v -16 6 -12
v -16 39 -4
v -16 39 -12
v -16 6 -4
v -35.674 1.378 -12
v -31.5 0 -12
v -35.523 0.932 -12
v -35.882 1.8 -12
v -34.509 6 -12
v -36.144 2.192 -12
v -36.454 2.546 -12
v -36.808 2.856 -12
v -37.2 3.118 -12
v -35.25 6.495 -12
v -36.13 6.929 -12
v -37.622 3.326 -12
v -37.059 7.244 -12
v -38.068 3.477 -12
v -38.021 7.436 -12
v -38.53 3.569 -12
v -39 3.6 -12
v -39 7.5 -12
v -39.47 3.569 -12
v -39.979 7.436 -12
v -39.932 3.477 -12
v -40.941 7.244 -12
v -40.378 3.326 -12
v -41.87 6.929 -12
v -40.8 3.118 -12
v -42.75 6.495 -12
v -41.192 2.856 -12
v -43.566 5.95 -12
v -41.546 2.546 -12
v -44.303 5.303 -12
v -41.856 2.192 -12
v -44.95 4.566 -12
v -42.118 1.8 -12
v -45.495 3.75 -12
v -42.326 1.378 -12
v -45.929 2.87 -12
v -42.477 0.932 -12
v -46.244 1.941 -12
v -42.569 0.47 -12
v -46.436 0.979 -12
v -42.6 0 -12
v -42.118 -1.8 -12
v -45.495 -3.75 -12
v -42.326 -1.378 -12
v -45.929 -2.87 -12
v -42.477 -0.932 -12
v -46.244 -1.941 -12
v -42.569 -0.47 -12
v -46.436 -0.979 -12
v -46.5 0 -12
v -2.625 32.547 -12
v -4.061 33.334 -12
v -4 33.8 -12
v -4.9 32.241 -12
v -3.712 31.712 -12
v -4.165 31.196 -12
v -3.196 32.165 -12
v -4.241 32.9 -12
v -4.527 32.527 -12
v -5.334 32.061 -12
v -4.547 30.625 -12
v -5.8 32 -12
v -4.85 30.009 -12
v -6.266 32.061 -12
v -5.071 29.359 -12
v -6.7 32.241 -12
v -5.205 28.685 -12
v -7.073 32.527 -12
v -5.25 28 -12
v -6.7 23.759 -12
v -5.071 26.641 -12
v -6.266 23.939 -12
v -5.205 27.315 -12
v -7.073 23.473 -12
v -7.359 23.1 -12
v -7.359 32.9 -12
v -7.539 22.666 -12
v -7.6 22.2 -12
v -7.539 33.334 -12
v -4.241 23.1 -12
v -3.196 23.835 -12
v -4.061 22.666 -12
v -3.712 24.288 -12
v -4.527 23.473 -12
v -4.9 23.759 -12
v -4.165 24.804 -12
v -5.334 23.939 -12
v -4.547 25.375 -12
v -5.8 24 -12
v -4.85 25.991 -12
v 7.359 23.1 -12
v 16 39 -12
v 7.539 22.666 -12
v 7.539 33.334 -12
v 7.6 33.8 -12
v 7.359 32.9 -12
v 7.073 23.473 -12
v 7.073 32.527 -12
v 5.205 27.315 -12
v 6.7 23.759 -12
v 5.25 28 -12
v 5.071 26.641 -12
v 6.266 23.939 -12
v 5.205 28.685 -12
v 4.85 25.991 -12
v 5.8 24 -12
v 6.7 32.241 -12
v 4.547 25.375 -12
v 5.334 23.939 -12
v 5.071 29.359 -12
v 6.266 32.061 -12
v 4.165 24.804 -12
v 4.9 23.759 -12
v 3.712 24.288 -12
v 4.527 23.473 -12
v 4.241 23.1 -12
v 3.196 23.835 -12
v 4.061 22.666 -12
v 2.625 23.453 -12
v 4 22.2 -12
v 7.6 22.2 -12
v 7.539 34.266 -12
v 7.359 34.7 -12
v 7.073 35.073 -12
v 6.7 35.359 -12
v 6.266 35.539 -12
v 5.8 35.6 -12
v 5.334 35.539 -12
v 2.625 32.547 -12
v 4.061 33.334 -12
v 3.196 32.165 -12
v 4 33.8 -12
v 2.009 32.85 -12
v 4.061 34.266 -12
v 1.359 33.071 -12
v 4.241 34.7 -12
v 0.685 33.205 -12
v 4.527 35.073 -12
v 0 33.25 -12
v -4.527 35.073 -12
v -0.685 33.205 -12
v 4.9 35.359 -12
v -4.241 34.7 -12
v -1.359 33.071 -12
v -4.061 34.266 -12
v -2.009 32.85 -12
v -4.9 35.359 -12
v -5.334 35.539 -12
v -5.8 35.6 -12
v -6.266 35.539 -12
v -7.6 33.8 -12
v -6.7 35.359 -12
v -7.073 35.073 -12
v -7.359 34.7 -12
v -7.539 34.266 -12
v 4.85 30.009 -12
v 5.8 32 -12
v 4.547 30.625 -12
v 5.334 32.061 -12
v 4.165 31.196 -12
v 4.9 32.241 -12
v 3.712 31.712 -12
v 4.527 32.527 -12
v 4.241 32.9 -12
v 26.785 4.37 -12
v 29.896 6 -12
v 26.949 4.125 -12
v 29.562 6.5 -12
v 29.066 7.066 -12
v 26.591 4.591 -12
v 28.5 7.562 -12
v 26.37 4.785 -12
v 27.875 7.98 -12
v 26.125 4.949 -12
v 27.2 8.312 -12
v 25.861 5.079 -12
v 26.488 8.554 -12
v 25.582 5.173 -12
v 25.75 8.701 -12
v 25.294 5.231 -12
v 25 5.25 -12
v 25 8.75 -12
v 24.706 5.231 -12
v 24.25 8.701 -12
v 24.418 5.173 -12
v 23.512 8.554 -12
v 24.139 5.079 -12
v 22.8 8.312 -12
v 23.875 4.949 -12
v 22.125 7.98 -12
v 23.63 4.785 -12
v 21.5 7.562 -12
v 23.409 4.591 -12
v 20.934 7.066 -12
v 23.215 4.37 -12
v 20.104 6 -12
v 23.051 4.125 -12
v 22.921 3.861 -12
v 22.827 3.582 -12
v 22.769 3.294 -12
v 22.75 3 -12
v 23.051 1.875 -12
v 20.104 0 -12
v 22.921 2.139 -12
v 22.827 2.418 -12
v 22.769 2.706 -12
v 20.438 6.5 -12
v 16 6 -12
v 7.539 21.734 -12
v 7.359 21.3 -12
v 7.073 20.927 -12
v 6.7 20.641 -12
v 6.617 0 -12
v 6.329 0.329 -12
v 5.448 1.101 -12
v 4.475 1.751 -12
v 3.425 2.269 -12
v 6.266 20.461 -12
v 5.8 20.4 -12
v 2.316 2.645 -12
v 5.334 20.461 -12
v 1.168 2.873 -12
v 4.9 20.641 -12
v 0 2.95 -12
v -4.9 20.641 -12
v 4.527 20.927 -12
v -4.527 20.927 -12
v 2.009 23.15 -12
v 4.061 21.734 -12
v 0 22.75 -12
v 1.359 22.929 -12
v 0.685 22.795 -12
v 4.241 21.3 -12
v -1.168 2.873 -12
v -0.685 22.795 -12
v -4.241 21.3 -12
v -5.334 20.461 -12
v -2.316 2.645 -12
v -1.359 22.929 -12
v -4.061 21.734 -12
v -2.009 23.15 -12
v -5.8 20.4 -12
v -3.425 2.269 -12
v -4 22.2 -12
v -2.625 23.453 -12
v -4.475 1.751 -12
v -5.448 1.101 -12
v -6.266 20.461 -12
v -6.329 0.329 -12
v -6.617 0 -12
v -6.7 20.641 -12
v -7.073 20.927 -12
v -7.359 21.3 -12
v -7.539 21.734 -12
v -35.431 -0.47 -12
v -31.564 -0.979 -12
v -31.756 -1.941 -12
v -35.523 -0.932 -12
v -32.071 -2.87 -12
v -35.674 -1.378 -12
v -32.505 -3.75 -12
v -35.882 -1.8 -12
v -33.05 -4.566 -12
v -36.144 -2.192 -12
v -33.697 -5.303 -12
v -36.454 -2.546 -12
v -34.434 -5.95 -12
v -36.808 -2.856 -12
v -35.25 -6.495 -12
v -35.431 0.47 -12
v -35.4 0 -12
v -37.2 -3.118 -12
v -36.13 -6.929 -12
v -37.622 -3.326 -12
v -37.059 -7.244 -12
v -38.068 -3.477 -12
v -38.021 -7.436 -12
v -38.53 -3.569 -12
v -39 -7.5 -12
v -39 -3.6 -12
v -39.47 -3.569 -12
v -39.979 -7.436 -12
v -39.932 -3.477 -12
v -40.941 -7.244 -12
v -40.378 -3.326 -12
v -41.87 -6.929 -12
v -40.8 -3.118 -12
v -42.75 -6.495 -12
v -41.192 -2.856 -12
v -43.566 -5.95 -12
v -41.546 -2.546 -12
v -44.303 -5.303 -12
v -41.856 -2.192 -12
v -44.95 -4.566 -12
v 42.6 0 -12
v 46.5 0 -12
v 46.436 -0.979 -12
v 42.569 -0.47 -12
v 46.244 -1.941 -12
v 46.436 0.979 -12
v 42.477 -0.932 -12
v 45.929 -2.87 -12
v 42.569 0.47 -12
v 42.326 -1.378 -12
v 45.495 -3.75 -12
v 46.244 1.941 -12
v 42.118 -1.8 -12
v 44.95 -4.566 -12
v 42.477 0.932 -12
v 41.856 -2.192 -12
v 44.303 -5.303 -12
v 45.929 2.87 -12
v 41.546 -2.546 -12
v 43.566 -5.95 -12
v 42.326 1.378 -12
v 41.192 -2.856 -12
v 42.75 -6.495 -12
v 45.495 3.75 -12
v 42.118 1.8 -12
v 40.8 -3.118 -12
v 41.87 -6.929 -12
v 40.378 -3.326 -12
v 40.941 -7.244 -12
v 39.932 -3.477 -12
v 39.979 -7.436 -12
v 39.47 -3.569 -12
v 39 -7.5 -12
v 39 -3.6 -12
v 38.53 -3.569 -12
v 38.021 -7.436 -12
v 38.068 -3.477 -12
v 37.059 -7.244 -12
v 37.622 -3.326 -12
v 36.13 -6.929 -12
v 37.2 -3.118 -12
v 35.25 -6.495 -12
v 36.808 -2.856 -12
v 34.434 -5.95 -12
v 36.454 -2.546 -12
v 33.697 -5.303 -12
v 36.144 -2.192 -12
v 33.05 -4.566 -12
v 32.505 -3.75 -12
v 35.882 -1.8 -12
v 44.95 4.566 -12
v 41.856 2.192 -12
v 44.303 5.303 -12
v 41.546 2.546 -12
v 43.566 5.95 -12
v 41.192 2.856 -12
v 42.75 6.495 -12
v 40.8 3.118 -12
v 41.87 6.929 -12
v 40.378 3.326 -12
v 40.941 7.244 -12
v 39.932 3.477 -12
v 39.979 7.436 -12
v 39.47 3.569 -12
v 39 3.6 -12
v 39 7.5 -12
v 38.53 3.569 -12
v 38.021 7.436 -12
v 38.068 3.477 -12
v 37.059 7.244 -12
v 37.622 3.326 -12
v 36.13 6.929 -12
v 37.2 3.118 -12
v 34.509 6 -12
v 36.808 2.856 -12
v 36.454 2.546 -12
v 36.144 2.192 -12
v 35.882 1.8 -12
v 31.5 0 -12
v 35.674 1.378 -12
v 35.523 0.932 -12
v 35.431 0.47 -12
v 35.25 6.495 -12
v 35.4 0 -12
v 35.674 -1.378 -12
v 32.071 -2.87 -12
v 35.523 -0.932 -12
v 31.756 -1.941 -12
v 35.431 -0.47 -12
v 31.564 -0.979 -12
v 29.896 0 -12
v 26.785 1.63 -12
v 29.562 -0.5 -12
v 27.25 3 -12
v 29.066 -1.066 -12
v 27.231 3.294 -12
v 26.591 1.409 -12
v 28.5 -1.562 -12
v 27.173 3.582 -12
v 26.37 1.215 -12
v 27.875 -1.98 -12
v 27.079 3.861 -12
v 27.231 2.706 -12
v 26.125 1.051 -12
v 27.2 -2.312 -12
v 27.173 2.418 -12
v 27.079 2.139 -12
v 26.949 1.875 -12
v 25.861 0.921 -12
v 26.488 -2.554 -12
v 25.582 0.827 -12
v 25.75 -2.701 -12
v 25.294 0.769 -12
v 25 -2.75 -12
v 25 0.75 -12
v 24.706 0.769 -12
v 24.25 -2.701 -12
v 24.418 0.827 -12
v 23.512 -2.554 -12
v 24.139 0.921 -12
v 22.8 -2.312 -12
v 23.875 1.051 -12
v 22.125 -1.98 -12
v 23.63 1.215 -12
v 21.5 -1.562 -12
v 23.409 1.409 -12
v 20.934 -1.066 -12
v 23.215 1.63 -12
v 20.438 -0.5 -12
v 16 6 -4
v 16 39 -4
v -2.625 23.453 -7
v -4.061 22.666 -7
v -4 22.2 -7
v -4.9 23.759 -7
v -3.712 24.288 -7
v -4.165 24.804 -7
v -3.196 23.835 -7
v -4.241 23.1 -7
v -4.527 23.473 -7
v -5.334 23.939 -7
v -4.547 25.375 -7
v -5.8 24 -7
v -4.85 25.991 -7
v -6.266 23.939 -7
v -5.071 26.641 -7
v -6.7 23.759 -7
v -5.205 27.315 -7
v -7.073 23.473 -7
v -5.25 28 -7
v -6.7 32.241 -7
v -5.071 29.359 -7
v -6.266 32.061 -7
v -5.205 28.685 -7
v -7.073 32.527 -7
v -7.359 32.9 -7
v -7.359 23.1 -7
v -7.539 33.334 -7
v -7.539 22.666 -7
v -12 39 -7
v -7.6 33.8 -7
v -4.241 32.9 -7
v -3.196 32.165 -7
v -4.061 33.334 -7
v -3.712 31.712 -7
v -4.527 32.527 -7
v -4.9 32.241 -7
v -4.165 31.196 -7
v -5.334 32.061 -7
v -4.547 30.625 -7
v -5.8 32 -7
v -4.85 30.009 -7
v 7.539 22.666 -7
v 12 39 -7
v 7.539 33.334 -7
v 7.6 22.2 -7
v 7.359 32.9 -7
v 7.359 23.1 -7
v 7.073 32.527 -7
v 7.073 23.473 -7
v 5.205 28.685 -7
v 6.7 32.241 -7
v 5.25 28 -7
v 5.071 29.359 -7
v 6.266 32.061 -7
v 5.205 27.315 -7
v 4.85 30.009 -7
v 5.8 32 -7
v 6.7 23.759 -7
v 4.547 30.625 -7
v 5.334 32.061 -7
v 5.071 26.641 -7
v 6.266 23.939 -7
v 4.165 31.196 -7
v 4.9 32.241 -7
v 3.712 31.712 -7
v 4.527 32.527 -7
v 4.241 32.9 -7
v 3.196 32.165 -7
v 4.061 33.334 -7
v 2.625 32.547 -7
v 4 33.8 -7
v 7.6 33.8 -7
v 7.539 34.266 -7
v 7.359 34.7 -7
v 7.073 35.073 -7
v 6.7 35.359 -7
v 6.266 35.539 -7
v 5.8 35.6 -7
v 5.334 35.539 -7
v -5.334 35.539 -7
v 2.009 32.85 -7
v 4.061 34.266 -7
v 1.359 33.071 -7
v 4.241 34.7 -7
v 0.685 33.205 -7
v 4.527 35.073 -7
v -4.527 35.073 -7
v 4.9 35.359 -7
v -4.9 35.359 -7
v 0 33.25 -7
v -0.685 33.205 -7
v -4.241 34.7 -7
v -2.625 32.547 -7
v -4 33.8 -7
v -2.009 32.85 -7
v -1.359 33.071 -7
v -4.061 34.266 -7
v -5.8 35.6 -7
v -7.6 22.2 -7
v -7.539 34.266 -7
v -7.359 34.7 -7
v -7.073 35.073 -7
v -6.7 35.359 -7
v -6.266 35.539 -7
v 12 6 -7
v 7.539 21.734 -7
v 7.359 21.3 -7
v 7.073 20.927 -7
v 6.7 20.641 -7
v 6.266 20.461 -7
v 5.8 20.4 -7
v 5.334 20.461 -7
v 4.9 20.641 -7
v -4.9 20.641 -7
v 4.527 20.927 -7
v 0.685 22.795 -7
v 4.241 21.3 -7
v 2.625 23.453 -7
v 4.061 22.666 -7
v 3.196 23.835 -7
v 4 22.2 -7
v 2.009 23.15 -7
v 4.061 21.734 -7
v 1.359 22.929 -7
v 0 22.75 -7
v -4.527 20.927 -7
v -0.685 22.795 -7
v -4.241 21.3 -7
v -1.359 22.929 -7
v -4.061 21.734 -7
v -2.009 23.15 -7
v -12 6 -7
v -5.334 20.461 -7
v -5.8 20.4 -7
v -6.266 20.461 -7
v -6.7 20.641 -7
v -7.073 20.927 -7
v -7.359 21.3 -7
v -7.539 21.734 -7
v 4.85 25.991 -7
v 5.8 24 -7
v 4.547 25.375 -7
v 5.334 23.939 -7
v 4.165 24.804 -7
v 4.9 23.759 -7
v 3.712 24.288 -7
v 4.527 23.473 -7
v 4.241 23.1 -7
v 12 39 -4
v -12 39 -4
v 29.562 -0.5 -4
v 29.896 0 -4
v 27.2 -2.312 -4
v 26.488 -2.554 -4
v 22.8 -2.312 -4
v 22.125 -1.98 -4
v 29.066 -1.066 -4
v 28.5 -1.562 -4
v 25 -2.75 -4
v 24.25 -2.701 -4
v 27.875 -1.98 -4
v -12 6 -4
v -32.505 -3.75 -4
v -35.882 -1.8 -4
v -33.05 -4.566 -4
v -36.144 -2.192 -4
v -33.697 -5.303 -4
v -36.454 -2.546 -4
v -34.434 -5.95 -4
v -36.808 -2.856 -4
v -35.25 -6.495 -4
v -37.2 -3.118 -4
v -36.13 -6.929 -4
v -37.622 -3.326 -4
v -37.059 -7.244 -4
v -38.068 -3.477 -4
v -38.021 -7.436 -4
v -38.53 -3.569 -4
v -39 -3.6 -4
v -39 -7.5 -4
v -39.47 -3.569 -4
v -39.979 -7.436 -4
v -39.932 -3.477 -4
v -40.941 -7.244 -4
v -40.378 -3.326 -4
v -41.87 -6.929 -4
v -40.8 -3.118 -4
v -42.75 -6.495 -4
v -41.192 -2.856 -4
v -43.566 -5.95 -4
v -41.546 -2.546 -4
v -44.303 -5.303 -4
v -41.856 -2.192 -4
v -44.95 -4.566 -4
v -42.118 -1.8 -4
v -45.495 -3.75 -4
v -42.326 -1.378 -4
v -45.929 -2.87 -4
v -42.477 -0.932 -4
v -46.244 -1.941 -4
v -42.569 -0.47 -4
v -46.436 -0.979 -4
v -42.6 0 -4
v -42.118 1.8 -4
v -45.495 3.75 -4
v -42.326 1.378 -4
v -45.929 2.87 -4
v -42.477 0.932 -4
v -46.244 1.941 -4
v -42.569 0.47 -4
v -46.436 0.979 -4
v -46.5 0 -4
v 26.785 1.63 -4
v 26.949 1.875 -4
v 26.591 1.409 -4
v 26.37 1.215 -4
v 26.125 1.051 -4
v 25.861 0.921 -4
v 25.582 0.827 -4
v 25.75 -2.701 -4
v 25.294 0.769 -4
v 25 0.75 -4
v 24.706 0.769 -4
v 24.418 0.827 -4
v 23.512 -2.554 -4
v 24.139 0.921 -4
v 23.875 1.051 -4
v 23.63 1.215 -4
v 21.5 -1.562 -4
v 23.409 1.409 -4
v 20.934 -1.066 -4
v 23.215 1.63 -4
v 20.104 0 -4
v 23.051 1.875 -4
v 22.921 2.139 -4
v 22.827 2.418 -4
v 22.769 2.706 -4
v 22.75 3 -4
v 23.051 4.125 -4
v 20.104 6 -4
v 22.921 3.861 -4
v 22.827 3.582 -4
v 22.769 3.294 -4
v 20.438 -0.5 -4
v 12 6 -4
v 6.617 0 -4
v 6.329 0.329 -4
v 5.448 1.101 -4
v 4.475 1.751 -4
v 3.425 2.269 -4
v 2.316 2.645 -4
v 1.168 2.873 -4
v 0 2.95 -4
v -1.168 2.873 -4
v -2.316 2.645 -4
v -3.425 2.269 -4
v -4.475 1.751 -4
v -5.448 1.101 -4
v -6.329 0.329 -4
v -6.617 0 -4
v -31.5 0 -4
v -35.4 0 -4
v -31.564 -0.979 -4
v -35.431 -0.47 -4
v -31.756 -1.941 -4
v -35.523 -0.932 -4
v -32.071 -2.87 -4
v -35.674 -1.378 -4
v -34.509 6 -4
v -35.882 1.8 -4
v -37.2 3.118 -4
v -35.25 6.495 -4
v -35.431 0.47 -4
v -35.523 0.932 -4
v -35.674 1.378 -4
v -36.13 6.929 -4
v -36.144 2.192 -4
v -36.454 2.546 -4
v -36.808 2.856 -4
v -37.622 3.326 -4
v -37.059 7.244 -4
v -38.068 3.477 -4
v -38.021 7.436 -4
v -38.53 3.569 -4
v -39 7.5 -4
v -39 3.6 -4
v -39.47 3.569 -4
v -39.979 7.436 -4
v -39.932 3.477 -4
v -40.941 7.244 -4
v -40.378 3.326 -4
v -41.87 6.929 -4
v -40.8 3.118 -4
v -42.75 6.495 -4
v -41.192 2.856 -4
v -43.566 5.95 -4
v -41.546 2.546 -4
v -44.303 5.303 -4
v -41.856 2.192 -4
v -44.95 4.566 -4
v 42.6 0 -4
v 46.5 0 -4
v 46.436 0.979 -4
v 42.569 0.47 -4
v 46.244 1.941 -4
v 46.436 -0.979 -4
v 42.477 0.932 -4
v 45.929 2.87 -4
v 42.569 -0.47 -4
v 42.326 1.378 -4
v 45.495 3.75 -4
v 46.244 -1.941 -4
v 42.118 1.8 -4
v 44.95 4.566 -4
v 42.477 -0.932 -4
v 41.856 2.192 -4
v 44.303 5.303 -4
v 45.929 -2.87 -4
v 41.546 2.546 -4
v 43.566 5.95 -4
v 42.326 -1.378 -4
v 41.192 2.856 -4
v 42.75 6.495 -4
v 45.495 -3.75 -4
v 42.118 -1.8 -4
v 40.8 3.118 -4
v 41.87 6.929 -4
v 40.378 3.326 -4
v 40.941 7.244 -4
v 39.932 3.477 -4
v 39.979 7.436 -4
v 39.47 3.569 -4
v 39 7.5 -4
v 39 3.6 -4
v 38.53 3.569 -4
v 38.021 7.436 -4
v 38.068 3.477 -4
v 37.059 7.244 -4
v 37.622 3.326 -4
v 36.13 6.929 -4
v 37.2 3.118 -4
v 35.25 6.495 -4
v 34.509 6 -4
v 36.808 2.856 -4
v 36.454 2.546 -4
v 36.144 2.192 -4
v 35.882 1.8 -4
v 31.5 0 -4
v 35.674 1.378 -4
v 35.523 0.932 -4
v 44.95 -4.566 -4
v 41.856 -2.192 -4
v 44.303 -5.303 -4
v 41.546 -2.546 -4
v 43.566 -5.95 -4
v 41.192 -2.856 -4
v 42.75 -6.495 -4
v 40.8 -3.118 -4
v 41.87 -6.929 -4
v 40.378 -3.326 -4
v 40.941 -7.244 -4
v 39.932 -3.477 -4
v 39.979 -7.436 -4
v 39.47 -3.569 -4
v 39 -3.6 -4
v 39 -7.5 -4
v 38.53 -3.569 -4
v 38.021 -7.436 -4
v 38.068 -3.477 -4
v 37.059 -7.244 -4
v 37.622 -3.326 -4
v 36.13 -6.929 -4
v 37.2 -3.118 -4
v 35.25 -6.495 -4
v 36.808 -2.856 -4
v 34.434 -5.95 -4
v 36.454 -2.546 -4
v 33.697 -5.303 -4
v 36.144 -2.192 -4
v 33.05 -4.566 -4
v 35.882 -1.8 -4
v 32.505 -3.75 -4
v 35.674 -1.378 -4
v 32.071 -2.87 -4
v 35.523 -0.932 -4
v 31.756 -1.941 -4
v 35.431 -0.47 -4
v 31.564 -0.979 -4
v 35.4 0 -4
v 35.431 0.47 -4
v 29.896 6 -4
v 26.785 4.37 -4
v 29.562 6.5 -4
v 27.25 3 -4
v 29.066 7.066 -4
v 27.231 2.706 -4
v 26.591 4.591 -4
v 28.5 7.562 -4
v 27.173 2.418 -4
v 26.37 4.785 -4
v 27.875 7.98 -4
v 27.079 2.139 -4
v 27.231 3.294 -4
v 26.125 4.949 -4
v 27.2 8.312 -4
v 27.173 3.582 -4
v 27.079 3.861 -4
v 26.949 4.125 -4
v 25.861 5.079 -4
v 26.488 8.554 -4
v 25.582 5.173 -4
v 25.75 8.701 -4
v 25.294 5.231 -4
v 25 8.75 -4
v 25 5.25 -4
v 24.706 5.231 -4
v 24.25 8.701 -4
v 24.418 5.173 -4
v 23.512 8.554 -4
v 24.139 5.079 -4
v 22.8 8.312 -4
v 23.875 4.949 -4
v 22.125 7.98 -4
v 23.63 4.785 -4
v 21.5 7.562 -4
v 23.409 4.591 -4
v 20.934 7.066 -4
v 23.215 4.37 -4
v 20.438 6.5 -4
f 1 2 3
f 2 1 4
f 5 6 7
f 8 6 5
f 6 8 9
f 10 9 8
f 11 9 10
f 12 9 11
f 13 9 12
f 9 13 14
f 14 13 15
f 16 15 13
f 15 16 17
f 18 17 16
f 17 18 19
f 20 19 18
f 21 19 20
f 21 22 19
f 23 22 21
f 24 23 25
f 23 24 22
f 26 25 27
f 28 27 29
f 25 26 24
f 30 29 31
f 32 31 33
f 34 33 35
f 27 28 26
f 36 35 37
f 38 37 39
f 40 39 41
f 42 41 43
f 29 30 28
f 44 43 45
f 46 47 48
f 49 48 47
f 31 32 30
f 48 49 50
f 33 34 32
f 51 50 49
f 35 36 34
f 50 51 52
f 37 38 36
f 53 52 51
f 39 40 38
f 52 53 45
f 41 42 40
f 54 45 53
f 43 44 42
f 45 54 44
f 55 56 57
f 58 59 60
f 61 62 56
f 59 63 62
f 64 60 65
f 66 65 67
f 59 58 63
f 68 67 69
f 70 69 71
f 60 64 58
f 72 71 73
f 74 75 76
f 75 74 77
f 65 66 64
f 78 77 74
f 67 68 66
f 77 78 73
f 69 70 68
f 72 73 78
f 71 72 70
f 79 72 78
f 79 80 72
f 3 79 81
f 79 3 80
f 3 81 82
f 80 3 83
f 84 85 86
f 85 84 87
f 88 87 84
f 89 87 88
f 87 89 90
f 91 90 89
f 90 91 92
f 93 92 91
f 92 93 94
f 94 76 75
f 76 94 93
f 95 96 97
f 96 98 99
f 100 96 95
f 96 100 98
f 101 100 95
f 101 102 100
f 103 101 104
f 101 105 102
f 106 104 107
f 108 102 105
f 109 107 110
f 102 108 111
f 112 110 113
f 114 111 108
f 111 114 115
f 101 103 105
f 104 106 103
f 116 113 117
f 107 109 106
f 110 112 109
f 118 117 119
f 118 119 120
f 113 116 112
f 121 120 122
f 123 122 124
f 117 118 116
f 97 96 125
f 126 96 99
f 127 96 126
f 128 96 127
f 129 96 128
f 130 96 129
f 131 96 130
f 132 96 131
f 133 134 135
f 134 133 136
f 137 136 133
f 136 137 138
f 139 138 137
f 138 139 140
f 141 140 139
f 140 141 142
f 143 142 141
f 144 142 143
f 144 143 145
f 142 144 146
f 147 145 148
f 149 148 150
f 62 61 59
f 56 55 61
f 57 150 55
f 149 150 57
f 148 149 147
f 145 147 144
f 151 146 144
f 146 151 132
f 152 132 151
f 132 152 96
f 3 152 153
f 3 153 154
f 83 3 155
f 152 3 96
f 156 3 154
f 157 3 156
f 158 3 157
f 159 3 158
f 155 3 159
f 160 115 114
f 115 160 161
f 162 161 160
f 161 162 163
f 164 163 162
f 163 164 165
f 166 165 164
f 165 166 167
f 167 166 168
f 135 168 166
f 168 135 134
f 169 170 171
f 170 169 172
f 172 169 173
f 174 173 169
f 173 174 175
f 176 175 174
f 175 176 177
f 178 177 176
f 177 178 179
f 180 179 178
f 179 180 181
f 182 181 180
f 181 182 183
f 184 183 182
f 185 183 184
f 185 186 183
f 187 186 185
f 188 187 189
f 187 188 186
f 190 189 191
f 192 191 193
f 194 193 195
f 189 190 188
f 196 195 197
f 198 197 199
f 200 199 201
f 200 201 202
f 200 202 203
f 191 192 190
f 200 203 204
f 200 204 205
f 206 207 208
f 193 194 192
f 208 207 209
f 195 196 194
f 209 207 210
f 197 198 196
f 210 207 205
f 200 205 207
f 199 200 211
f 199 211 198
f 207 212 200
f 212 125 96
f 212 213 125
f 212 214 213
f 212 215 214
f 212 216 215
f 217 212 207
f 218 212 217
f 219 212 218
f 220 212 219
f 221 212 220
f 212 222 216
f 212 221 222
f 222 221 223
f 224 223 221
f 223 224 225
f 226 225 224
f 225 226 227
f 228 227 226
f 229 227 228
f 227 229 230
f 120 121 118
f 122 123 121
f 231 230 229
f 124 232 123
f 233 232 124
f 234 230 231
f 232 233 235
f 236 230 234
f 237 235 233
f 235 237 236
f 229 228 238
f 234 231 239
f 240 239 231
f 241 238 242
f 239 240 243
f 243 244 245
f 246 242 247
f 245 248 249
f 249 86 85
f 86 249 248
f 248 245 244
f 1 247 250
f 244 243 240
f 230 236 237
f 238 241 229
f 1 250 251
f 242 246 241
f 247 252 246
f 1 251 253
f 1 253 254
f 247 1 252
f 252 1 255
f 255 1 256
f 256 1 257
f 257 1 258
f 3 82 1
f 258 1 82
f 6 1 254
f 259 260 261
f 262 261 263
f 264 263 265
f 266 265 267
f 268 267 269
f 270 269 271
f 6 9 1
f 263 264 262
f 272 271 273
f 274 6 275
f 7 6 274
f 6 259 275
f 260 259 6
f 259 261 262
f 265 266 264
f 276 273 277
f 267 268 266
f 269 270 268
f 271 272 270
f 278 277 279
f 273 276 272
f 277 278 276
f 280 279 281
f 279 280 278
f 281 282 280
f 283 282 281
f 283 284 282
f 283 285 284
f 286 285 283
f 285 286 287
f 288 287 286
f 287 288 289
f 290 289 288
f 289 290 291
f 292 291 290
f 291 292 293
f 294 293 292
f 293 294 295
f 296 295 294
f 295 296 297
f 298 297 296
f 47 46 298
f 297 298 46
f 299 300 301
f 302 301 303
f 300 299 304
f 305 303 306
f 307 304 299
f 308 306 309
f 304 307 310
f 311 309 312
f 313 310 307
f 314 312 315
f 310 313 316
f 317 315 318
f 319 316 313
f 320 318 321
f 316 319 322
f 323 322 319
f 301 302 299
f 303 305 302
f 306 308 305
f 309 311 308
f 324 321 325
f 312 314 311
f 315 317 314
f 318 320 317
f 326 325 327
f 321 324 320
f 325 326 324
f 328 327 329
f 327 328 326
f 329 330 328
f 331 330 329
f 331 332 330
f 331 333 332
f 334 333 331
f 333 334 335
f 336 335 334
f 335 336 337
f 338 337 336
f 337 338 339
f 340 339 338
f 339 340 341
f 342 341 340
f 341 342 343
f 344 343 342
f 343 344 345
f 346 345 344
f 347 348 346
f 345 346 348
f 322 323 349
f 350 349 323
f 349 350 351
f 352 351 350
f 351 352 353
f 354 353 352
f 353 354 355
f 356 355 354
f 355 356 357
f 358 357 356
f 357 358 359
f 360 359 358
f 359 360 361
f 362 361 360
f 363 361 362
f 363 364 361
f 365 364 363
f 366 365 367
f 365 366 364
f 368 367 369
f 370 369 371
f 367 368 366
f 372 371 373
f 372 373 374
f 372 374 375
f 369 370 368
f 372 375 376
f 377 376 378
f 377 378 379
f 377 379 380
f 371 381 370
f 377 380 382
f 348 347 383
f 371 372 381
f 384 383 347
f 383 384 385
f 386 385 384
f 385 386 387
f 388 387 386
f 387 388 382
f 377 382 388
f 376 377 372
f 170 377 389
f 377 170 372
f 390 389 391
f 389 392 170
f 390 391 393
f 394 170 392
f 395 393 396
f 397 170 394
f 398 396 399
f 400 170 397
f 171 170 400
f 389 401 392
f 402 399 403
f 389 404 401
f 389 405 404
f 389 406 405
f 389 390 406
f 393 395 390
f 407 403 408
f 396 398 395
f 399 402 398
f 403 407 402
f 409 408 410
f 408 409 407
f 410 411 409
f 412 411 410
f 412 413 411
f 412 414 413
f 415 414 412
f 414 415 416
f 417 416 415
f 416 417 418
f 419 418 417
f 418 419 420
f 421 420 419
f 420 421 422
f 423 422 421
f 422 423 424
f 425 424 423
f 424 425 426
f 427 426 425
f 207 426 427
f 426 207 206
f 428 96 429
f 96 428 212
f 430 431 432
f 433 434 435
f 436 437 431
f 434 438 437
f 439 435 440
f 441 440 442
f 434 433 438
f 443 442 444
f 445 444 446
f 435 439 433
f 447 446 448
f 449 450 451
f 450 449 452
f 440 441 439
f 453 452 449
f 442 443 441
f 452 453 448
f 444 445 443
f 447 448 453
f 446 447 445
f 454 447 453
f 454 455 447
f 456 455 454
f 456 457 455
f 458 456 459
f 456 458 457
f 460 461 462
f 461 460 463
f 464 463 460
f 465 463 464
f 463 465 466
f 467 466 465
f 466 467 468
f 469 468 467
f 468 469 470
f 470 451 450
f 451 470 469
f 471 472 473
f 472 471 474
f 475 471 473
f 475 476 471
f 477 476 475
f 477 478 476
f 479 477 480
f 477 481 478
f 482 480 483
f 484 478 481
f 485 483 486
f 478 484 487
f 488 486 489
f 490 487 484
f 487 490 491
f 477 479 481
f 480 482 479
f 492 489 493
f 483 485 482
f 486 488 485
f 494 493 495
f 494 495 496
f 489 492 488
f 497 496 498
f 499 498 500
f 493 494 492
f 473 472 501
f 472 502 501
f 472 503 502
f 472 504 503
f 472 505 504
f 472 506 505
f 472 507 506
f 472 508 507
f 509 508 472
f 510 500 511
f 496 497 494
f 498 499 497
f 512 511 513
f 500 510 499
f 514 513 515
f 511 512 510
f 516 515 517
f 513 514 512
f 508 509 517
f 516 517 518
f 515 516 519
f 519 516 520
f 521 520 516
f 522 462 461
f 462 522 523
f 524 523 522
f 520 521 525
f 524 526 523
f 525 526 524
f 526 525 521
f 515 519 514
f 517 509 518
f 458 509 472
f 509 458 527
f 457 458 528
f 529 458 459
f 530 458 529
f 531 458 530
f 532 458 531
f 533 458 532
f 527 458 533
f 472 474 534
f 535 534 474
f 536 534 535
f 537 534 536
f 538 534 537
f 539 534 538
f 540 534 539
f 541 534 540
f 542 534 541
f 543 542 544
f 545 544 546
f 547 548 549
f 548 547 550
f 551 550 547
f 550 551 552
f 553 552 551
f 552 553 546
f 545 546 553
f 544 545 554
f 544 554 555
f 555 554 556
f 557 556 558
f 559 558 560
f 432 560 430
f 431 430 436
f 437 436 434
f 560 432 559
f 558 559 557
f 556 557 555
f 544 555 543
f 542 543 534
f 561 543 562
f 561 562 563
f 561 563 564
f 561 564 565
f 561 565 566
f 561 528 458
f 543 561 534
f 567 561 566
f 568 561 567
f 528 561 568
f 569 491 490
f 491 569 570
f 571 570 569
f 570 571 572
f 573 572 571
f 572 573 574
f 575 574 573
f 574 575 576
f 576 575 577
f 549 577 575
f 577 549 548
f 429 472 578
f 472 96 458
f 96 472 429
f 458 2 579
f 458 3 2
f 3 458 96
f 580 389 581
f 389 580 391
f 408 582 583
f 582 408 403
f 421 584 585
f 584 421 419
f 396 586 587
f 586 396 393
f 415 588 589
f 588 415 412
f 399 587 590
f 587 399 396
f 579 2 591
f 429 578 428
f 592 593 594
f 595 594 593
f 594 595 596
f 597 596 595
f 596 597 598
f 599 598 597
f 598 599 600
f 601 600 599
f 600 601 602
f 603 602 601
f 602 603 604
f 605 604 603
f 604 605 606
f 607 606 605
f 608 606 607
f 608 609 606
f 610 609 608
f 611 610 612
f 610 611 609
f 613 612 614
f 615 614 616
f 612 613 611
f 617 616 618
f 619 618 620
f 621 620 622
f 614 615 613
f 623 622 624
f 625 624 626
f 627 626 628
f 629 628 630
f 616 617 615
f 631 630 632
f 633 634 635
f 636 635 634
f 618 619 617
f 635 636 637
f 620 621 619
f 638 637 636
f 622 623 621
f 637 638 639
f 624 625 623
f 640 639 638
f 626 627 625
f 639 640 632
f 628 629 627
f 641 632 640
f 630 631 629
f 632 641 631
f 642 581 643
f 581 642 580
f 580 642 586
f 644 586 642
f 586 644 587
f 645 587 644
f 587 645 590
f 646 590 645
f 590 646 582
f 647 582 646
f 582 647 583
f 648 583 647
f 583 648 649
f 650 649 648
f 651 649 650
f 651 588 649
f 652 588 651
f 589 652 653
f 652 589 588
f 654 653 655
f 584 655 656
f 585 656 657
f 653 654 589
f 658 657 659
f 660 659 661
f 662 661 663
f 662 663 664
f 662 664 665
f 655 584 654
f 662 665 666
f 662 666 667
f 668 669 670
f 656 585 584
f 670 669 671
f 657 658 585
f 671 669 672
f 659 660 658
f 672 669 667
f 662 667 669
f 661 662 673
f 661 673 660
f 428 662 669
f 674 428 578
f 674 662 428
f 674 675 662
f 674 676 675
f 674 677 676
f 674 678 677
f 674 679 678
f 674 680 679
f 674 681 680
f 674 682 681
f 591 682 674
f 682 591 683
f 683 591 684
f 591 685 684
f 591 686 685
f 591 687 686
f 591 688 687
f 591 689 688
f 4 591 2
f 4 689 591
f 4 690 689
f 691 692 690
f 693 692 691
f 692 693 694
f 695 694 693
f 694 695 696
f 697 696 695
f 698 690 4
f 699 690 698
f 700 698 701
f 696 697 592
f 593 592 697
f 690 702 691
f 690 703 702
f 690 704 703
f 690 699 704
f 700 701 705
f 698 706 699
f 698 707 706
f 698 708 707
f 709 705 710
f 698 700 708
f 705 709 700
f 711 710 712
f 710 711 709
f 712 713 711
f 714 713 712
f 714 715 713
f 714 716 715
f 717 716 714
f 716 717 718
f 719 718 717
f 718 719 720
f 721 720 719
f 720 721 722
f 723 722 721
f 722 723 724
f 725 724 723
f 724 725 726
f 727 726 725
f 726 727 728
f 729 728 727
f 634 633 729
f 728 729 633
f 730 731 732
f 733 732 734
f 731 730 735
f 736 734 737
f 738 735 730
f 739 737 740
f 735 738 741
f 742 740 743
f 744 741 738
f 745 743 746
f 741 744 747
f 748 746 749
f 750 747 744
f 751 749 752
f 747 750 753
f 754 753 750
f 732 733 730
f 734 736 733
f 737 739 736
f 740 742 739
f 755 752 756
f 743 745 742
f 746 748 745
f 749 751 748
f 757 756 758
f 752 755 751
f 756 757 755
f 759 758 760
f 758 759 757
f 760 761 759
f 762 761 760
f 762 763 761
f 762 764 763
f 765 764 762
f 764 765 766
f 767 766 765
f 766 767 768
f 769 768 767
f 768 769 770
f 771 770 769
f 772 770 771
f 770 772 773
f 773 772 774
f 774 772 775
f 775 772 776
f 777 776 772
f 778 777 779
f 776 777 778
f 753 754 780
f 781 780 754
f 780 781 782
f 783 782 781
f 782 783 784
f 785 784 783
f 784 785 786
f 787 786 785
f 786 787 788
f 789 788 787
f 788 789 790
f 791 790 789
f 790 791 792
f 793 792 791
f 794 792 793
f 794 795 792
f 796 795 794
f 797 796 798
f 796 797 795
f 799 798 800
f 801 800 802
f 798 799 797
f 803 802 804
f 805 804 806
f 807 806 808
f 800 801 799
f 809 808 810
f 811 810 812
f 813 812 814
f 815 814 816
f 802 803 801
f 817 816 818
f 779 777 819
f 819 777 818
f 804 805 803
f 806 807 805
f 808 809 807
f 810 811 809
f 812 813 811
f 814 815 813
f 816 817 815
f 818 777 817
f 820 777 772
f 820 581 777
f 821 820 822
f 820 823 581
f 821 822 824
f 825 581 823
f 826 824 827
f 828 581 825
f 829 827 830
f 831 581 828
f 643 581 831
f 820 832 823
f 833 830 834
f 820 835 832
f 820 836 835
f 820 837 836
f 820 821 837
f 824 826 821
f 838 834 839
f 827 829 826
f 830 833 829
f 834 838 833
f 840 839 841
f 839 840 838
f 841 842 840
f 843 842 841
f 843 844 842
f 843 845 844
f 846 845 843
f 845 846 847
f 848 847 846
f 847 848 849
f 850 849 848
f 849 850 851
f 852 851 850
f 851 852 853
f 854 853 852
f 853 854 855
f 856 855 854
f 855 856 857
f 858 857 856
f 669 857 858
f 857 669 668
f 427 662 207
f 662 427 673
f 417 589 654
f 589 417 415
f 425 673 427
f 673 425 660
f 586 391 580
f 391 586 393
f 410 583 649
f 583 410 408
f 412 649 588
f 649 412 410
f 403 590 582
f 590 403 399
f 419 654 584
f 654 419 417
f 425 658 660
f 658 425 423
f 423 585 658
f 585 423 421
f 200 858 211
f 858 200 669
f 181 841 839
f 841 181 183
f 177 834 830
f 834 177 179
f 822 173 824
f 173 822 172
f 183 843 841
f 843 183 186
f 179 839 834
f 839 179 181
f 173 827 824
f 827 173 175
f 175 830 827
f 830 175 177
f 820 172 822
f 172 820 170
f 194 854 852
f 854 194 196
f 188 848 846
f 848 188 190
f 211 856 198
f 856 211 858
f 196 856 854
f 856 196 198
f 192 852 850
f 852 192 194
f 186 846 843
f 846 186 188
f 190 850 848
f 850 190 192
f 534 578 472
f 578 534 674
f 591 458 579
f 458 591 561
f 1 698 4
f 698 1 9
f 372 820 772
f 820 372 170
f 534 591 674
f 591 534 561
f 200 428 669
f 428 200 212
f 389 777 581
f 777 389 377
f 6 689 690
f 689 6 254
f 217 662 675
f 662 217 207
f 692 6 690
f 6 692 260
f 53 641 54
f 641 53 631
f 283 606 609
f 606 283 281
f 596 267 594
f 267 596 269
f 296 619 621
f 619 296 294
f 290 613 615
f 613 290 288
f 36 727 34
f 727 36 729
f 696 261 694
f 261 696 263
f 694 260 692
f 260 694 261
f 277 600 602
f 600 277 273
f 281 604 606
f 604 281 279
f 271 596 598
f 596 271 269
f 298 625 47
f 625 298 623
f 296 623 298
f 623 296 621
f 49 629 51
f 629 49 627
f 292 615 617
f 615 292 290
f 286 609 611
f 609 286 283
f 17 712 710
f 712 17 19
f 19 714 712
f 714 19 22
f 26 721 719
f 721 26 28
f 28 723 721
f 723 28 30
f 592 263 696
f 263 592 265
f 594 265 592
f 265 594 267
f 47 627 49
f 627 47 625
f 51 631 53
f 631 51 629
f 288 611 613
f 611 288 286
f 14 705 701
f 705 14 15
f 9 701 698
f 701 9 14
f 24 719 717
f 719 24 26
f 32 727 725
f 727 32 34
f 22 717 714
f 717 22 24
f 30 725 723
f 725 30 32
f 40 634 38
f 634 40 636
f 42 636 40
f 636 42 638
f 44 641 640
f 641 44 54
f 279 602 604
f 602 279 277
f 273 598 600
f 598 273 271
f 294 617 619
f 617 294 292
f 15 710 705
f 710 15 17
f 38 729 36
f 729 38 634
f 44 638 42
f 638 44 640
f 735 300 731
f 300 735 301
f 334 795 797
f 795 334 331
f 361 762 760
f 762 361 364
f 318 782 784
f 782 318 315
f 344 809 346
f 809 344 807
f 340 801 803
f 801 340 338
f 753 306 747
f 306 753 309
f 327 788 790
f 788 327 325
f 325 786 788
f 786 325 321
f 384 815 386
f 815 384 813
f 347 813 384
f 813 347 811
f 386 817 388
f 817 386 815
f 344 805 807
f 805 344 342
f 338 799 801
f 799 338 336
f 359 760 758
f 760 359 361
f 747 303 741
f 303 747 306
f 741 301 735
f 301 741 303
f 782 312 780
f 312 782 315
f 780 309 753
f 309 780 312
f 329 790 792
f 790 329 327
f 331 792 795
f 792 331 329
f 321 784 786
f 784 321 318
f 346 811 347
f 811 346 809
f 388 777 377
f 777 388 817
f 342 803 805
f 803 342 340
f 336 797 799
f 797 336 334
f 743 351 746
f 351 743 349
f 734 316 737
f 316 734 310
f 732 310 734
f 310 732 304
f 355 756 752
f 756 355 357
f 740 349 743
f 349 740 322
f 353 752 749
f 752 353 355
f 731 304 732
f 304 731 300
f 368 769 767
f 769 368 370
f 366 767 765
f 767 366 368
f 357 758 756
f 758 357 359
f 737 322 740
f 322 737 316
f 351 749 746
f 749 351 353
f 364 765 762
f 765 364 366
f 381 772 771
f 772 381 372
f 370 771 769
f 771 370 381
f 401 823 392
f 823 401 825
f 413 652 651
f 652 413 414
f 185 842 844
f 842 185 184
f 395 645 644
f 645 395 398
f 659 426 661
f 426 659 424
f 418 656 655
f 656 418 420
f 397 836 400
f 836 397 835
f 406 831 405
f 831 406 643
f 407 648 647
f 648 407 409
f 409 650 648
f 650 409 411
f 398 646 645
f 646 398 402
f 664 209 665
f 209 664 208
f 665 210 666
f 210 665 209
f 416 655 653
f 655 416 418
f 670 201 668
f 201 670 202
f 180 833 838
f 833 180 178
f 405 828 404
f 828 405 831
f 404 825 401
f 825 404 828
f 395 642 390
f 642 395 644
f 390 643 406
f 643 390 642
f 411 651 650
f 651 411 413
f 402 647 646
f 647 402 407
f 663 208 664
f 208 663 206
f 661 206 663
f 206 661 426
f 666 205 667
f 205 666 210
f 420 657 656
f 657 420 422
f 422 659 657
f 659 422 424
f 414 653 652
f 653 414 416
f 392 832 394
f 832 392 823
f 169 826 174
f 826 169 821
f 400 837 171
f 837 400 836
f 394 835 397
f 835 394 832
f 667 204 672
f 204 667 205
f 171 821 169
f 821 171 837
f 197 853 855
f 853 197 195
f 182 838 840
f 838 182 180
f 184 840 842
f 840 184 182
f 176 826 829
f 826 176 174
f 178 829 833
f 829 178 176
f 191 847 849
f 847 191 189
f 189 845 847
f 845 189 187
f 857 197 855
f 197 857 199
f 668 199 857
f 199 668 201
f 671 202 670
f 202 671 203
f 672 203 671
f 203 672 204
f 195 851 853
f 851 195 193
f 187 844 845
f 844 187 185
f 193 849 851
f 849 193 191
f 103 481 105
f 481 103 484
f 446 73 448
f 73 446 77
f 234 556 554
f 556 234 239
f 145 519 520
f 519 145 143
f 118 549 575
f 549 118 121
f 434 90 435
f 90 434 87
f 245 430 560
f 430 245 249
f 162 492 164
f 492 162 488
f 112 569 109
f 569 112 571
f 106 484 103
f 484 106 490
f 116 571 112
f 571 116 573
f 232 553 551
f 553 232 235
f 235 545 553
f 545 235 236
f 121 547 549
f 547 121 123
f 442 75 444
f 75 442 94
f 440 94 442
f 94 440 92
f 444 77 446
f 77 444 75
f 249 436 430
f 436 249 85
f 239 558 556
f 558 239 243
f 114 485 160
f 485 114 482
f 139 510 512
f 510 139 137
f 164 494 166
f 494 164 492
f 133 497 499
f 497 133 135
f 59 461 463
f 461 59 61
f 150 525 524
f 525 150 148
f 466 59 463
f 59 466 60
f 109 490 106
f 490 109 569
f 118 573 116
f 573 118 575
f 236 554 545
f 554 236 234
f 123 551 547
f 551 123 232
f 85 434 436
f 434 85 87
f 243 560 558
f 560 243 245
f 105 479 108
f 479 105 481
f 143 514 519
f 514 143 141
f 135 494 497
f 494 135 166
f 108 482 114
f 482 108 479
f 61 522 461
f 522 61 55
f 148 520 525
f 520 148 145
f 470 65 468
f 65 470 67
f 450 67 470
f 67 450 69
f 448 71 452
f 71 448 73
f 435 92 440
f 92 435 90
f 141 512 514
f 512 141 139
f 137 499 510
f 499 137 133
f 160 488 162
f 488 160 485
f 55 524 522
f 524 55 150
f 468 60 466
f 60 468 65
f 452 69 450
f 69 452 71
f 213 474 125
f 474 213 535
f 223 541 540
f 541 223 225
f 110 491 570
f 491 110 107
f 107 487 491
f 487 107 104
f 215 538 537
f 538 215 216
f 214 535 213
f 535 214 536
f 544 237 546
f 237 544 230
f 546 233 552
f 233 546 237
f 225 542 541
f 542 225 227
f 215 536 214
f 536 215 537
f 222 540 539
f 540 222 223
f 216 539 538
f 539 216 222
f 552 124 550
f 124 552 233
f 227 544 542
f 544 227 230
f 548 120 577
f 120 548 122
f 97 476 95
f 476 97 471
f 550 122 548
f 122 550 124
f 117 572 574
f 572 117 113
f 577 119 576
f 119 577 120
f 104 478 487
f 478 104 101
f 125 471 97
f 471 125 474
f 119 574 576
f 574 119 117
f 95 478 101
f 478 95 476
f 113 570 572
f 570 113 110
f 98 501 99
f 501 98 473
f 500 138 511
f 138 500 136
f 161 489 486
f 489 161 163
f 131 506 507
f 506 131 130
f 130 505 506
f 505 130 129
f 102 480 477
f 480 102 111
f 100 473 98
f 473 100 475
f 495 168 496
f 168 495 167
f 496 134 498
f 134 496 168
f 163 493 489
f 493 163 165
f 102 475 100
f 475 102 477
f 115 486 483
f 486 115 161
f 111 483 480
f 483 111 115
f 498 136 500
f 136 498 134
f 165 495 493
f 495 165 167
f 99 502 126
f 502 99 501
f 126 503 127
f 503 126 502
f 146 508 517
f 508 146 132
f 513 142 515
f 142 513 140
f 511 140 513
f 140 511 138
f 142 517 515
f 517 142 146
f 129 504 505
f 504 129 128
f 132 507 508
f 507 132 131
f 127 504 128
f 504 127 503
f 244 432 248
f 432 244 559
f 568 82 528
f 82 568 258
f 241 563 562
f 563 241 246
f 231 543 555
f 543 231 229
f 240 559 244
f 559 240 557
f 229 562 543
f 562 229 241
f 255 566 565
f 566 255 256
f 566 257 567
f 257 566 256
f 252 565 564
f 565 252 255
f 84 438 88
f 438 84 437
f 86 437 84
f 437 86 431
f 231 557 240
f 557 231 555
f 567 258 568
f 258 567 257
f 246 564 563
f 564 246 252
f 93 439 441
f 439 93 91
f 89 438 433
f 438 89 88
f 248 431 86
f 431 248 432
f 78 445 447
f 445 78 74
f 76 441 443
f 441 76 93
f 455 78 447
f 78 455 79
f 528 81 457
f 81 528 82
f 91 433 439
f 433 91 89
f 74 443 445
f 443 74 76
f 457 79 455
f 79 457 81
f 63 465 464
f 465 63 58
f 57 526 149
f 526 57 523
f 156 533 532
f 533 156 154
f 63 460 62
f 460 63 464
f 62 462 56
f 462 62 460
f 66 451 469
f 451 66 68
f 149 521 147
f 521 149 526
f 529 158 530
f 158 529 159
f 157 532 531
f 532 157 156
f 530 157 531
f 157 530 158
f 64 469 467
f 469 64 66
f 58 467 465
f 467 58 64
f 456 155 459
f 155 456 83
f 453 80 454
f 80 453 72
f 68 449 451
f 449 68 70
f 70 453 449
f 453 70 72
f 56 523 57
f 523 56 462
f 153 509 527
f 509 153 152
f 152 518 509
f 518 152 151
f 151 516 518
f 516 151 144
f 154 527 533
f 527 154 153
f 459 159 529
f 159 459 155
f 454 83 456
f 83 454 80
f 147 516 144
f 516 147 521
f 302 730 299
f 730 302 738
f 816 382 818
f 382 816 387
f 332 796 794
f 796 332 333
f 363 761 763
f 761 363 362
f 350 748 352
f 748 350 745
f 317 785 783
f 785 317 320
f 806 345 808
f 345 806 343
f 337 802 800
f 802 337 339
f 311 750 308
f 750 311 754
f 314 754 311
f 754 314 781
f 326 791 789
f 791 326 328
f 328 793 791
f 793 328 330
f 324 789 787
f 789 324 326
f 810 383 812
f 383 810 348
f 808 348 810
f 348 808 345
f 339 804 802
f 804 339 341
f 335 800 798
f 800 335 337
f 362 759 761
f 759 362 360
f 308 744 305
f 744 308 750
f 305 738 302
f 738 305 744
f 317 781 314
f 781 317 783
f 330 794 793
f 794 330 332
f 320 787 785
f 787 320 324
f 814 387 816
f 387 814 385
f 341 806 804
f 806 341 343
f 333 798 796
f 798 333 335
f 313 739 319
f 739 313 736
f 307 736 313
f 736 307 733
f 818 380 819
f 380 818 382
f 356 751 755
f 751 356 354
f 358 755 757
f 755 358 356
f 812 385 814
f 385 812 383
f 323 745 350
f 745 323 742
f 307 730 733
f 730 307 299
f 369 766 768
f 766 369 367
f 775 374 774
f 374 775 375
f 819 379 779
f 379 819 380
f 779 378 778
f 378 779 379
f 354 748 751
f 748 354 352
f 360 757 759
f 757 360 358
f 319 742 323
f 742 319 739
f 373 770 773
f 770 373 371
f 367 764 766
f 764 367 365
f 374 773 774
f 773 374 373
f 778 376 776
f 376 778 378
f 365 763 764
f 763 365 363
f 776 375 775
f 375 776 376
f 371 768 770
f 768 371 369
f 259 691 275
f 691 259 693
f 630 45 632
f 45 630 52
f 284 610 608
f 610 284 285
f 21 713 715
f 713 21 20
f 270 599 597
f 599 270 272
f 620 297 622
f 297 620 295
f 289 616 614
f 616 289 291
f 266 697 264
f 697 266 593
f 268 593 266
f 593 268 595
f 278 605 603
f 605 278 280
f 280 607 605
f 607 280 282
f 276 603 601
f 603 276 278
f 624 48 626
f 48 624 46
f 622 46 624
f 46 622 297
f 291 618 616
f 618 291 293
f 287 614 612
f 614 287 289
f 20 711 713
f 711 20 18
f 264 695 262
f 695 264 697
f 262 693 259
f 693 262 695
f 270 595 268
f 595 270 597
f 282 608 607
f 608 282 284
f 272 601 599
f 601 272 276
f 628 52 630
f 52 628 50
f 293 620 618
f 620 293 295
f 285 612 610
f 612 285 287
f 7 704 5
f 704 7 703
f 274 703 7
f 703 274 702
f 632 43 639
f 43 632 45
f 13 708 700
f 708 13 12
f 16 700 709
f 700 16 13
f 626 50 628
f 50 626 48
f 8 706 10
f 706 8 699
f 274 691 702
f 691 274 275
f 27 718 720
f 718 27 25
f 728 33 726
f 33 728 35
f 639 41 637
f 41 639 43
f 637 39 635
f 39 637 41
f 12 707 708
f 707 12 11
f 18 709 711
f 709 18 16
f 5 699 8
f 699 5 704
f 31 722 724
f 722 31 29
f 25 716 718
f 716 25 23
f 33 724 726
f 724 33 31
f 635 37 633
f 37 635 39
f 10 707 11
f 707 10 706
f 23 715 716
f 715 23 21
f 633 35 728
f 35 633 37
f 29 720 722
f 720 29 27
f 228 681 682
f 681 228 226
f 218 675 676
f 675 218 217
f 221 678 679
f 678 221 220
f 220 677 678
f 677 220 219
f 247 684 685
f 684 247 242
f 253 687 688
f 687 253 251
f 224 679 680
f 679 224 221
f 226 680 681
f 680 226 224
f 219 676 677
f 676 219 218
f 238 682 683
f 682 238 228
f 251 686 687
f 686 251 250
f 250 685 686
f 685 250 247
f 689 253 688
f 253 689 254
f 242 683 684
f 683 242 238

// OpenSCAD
// Push cutter or pen holder downwards.

   DiaM3=3.6; // fix  with M3
   DiaM4 = 4.5; // Z switch activation
   DiaM6=6.8; // M6 shaft   
   DiaCutter=11.9;  //11.8
   Height=60;   // 80
  

   color("lime")          
         
 rotate([180,0,0])  //180 no need to rotate in Slic3R        
   {        
difference()
{ 
  union()
  {                    
   // Central Pen - Cutter holder
      
   //  translate([0,6,-28.0-10])  // -1.5  
  //     cylinder(h=Height ,d=DiaCutter+10+5 ,center=true,$fn=48);  //53
                    
 
 // connect central  part:   
      /*
        translate([0,2.5,-10-10])
      cube([76,5,LM6Height],center=true);   
         */  
      
      // fix acme
       translate([0,-20.5,9.5])                  
     cube([32,37,5],center=true);    
       
   // push Z switch 

    translate([24.5+0.5,-3,8])           
        cylinder(h=8,d=DiaM4+7, center=true,$fn=48);  //h28 
       
             ////////////////////////////////
             
     //  reinforcement 
             
 translate([14.0,-20.5,8])   //..9.5
      cube([4.0,37,8]  ,center=true); //.28           
          
            
 translate([-14.0,-20.5,8])           //
      cube([4.0,37,8]  ,center=true);   //                          
            
    // central  reinforcement between linear shafts
   
     translate([0,-3,8])   //..9.5
      cube([86.0,6,8]  ,center=true); //   


// LM6 shafts: 
 translate([-39,0,8])
       cylinder(h=8 ,d=15 ,center=true,$fn=48);  //
     
       translate([39,0,8])
       cylinder(h=8 ,d=15 ,center=true,$fn=48);  //
   
                                 
  }    
            // END UNION
      
       // push Z switch
       
       translate([25,-3,0])            
      cylinder(h=34,d=DiaM4, center=true,$fn=48);  //h28
    
  
    
  // ACME FIX NUT TRAPEZOIDEAL SCREW:
    
     translate([0,-28,10])  //    
      cylinder(h=20,d=10.5,center=true,$fn=48); 
    
    // FIX ACME     
    translate([5.8,-28+5.8,10])  //   
      cylinder(h=20,d=DiaM3,center=true,$fn=24);      
                
    translate([5.8,-28-5.8,10])  // 
      cylinder(h=20,d=DiaM3,center=true,$fn=24); 
    
     translate([-5.8,-28+5.8,10])  //   
      cylinder(h=20,d=DiaM3,center=true,$fn=24);      
                
    translate([-5.8,-28-5.8,10])  // 
      cylinder(h=20,d=DiaM3,center=true,$fn=24); 
       
    
  
 // left shaft  
      translate([39,0,5])
       cylinder(h=25 ,d=7.2 ,center=true,$fn=48);  //
         
 // right shaft
 
      translate([-39,0,5])
       cylinder(h=25 ,d=7.2 ,center=true,$fn=48);  //
       
     
// 3 mm room for pen or cutter:

translate([0,6,-25])
       cylinder(h=Height*3 ,d=DiaCutter+6,center=true,$fn=48);  
       
  
    
    }
 }  // end rotate
         
         
